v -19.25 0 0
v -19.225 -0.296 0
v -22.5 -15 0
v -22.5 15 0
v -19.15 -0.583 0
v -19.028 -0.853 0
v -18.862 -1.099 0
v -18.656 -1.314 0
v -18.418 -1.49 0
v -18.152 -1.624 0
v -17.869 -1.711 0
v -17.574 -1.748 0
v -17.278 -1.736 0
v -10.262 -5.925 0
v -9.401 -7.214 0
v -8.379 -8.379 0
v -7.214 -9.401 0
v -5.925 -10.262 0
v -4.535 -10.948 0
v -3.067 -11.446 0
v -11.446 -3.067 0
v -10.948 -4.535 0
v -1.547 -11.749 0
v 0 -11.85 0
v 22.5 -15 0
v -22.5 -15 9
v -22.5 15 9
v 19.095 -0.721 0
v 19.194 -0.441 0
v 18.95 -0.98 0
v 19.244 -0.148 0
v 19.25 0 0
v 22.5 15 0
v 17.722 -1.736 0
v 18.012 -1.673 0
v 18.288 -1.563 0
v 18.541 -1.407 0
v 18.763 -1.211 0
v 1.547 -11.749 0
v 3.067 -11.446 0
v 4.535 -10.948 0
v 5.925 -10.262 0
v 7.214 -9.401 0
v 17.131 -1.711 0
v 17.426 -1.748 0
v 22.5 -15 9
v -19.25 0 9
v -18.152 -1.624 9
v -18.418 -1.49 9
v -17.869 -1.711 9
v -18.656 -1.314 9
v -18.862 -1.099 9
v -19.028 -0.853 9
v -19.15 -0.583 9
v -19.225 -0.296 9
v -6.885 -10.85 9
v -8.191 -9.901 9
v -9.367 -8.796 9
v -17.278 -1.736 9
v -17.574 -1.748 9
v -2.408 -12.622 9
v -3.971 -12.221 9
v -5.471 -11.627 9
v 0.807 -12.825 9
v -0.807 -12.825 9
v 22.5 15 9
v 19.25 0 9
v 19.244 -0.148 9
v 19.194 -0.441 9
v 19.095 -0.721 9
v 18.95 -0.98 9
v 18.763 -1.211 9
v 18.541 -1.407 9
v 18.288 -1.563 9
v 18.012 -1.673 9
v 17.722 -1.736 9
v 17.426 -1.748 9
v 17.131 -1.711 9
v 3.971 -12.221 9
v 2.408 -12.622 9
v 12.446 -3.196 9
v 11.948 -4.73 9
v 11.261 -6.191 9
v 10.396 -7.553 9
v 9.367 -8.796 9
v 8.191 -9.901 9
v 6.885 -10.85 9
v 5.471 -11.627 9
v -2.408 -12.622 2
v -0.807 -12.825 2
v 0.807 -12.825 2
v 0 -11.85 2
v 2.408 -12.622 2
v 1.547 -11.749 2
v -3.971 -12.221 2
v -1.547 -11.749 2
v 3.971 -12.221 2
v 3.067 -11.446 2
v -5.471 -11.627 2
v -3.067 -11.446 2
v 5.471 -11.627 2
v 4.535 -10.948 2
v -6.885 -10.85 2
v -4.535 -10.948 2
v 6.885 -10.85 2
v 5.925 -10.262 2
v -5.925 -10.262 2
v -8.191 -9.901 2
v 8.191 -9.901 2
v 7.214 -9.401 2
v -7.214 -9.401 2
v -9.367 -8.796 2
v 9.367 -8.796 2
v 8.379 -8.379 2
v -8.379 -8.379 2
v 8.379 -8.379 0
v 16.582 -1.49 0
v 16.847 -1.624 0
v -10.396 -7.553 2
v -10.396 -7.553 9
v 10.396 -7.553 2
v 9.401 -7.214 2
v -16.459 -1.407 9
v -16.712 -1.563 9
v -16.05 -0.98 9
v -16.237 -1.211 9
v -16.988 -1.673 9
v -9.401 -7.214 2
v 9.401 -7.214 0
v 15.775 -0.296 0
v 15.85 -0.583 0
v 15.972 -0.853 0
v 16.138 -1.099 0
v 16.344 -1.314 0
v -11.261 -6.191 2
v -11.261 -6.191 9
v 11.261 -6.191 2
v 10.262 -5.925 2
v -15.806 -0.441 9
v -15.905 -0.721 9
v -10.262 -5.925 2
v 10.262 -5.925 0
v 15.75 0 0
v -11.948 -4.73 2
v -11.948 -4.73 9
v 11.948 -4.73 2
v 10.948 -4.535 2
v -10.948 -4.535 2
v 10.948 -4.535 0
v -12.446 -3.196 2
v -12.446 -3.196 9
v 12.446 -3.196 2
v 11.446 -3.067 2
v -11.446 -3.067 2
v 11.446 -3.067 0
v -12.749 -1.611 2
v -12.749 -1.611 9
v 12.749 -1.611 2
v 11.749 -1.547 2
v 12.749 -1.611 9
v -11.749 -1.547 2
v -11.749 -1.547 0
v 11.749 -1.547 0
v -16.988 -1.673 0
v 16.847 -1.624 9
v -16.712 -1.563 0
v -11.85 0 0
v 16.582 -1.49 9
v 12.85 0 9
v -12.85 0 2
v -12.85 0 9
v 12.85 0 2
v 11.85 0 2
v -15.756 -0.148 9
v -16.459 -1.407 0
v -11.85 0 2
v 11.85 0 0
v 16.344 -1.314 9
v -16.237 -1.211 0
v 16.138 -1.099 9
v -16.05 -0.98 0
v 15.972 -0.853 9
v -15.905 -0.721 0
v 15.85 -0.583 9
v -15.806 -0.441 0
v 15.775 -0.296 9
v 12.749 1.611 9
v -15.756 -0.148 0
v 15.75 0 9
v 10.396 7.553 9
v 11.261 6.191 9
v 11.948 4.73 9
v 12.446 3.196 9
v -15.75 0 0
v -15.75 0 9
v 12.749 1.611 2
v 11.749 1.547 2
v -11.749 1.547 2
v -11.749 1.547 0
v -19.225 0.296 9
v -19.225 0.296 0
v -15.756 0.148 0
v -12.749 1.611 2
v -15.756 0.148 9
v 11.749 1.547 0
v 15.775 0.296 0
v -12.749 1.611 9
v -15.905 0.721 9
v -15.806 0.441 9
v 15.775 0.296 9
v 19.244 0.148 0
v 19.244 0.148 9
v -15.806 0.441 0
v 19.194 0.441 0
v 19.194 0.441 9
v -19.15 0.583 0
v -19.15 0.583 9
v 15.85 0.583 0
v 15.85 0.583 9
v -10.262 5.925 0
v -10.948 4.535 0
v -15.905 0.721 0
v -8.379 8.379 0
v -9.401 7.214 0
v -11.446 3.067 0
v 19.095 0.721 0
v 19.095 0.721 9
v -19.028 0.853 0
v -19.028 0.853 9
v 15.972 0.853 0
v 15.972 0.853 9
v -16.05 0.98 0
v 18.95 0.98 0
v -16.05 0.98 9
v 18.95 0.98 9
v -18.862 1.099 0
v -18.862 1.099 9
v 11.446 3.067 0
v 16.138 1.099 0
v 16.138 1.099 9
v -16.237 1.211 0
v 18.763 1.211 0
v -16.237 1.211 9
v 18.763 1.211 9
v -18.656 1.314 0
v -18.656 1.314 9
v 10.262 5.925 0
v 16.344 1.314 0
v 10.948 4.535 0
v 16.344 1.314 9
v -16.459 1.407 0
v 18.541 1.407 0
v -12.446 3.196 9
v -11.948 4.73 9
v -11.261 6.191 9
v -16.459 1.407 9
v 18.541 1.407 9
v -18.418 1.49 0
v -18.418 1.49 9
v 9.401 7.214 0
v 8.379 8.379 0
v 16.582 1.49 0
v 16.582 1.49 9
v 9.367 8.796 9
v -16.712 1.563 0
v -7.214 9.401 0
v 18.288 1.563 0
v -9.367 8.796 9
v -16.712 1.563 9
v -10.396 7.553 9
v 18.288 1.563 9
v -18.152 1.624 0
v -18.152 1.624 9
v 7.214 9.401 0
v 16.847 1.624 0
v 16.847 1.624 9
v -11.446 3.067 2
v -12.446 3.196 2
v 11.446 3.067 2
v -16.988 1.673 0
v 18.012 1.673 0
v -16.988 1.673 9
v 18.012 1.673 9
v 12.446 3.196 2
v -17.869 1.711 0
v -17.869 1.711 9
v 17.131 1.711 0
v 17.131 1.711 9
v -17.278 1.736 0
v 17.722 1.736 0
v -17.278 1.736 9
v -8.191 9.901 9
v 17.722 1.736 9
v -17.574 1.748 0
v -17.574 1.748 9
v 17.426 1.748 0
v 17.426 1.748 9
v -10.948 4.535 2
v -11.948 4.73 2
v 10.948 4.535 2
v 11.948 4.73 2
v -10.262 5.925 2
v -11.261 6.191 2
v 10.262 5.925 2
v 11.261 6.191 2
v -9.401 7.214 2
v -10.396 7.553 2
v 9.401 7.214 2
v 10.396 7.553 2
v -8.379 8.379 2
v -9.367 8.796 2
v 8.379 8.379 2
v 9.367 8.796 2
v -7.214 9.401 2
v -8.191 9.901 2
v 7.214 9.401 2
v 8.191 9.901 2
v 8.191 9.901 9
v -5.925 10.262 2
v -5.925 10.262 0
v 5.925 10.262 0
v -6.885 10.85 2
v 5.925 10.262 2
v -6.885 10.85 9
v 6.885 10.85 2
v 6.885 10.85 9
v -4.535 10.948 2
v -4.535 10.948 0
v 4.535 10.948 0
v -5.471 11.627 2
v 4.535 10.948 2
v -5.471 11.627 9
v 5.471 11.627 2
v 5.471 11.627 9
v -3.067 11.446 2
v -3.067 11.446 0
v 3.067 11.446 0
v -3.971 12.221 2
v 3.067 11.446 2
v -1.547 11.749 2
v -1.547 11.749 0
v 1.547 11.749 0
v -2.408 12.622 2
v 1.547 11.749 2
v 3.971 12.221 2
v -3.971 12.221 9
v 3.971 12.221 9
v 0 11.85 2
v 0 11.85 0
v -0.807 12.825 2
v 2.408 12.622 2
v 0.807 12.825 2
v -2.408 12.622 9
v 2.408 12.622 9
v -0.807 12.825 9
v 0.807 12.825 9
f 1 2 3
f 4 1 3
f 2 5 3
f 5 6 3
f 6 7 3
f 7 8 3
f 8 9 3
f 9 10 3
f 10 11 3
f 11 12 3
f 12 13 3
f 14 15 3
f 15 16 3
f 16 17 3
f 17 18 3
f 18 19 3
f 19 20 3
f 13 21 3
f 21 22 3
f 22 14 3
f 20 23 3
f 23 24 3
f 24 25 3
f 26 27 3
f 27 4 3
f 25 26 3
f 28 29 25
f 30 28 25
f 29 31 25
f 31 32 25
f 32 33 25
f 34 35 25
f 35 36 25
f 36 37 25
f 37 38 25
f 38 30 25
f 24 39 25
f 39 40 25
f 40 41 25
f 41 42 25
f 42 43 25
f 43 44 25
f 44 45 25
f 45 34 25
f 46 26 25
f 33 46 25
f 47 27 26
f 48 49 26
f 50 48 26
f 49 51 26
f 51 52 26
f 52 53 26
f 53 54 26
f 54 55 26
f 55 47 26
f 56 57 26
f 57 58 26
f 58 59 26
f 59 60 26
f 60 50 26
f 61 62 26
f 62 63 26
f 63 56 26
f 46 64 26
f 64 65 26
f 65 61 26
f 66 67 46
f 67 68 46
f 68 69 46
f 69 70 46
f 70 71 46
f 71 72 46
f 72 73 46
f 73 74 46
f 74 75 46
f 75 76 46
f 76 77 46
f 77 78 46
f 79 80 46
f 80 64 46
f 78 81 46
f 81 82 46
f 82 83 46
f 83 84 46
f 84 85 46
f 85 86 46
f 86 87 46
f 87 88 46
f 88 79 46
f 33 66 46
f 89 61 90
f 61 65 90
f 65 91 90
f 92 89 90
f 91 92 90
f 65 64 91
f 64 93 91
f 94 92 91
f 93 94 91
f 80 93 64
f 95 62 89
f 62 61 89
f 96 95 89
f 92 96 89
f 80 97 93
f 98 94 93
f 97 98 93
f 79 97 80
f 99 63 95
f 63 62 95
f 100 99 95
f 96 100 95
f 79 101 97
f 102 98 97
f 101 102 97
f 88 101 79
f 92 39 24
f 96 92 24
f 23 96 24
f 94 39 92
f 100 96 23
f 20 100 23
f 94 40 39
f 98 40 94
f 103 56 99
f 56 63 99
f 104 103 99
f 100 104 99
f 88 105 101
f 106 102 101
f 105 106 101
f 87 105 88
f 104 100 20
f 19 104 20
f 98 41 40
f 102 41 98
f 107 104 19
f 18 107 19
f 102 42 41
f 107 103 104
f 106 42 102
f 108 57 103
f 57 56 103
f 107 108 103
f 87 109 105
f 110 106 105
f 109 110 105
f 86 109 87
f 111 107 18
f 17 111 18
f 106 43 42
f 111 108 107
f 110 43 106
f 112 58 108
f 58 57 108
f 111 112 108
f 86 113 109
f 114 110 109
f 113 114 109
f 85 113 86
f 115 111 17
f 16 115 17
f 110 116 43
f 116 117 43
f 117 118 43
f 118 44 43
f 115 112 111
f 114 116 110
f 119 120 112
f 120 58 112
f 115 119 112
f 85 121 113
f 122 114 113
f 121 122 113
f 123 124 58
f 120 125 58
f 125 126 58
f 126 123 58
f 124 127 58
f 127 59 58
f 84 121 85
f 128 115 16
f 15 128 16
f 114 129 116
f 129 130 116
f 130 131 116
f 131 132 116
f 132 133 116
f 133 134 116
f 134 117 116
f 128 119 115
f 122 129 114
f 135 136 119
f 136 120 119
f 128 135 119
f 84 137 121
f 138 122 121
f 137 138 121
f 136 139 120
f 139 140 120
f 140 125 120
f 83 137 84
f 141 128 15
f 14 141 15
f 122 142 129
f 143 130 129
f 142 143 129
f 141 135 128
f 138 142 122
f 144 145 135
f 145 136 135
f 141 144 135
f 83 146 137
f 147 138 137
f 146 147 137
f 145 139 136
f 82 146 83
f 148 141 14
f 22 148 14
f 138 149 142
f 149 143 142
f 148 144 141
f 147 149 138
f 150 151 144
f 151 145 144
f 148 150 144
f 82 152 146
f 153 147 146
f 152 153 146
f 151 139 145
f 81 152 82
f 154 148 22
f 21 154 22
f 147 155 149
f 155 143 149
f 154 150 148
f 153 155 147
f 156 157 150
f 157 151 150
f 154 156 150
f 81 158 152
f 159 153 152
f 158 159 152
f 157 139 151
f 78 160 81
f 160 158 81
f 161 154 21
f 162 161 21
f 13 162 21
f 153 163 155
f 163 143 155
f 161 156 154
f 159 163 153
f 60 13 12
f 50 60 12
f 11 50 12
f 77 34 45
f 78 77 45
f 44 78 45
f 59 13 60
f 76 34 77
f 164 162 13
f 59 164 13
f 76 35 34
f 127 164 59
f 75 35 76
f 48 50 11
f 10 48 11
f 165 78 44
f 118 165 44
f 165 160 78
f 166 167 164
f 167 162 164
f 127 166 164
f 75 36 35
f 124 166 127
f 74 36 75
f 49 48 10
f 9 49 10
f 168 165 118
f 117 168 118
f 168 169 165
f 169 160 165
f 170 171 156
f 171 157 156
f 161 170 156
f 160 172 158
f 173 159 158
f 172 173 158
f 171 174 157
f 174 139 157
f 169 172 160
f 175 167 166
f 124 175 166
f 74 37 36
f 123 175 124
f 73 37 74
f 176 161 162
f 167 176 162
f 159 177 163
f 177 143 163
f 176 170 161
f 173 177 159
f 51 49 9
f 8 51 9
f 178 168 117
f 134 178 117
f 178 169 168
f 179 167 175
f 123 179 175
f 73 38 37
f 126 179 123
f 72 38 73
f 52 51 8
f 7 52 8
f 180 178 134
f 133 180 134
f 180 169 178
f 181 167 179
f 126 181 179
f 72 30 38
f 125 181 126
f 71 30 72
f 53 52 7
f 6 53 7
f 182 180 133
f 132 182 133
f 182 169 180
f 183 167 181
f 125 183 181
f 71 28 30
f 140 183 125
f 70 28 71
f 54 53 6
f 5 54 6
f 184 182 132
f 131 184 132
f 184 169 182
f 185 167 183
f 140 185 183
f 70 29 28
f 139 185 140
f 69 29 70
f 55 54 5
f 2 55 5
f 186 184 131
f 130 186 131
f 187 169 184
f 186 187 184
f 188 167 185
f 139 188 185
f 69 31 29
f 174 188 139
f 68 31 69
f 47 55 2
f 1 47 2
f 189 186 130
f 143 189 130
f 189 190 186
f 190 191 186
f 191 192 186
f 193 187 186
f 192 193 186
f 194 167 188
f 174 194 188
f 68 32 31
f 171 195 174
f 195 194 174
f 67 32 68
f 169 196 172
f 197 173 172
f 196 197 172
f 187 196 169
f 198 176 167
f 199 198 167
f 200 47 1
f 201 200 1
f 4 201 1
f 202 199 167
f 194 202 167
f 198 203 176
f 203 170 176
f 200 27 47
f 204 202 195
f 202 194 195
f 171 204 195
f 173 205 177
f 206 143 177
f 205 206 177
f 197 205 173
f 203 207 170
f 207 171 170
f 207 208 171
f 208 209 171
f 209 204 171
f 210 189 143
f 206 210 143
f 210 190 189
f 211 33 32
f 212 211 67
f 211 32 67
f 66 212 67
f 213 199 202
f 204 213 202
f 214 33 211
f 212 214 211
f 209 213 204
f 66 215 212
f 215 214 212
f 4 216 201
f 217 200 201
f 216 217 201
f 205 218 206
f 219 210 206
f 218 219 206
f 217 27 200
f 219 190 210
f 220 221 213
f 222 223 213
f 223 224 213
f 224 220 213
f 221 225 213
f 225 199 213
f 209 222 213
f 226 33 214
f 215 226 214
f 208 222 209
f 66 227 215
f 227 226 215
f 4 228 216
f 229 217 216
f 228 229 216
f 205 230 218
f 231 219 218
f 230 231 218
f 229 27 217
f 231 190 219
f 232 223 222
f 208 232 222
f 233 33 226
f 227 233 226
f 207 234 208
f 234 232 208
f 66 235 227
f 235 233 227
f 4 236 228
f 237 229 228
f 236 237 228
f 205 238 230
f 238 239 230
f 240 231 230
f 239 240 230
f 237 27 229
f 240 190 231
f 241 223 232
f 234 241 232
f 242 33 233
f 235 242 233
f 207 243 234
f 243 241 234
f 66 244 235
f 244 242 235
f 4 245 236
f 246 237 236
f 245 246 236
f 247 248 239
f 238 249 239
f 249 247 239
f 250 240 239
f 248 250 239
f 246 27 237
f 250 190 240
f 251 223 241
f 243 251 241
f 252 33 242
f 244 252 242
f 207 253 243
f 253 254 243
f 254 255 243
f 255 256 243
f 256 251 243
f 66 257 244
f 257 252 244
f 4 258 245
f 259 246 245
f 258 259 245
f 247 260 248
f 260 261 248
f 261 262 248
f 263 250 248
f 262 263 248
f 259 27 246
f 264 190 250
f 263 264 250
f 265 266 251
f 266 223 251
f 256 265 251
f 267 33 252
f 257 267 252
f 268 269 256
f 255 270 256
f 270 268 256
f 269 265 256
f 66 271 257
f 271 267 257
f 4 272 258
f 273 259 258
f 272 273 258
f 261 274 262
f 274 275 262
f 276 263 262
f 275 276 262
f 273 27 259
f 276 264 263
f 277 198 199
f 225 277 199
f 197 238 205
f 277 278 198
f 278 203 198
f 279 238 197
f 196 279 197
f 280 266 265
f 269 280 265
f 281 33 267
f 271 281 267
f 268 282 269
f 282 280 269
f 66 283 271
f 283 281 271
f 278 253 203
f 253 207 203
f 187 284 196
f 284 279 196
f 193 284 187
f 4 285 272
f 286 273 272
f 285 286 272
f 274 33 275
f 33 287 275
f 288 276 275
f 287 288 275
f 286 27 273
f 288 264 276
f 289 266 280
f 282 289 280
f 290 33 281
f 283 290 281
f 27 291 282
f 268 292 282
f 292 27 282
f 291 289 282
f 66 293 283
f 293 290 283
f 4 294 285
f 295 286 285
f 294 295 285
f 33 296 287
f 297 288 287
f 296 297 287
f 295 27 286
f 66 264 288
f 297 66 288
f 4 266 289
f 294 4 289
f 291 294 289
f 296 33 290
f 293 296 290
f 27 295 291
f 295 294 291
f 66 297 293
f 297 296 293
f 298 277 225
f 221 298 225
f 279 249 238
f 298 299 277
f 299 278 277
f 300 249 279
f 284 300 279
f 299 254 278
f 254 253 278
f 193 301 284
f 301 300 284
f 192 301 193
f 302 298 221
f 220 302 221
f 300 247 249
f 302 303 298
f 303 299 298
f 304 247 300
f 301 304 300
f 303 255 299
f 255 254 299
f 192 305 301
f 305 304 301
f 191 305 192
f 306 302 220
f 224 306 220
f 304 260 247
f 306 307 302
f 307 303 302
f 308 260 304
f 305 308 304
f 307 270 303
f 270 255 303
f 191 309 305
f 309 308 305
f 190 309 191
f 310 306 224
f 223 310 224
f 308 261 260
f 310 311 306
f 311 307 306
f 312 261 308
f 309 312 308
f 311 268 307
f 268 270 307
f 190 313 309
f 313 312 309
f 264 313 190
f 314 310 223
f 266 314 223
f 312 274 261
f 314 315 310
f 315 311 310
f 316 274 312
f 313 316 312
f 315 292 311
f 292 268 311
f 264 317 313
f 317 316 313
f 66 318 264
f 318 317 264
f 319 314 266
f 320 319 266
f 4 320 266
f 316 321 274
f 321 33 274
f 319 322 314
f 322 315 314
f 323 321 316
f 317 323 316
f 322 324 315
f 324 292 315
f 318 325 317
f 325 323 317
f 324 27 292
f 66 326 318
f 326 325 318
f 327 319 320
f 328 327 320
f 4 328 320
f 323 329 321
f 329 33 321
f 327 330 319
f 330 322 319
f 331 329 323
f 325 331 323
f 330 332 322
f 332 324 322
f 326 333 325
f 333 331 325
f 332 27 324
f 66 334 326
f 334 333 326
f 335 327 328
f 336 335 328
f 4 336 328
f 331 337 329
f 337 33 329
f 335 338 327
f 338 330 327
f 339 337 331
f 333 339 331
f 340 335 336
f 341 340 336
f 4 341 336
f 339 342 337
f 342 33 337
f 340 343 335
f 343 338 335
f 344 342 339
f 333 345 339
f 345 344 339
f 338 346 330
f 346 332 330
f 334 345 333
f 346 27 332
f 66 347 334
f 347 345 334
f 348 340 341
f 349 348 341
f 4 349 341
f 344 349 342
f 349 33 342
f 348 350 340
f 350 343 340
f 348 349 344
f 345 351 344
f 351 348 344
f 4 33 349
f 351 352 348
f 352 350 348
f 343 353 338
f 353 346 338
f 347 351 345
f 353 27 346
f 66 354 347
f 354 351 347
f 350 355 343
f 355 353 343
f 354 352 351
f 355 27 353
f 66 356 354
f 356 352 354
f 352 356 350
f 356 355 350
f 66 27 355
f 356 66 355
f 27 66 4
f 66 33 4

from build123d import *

# Parameters (mm, degrees)
SKIZZE1_W                       = 45
SKIZZE1_H                       = 30
SKIZZE1_R                       = 11.85
SKIZZE1_R_2                     = 1.75
AUFSATZ_LINEAR_AUSTRAGEN1_DEPTH = 9
SKIZZE3_R                       = 12.85
SCHNITT_LINEAR_AUSTRAGEN1_DEPTH = 7


with BuildPart() as part:
    # Skizze1 → Aufsatz-Linear austragen1 (new body)
    with BuildSketch(Plane.XY):
        Rectangle(SKIZZE1_W, SKIZZE1_H)
        Circle(SKIZZE1_R, mode=Mode.SUBTRACT)
        with Locations((-17.5, 0)):
            Circle(SKIZZE1_R_2, mode=Mode.SUBTRACT)
        with Locations((17.5, 0)):
            Circle(SKIZZE1_R_2, mode=Mode.SUBTRACT)
    extrude(amount=AUFSATZ_LINEAR_AUSTRAGEN1_DEPTH)

    # Skizze3 → Schnitt-Linear austragen1 (cut)
    with BuildSketch(Plane.XY.offset(9)):
        Circle(SKIZZE3_R)
    extrude(amount=-SCHNITT_LINEAR_AUSTRAGEN1_DEPTH, mode=Mode.SUBTRACT)


solid = part.part
